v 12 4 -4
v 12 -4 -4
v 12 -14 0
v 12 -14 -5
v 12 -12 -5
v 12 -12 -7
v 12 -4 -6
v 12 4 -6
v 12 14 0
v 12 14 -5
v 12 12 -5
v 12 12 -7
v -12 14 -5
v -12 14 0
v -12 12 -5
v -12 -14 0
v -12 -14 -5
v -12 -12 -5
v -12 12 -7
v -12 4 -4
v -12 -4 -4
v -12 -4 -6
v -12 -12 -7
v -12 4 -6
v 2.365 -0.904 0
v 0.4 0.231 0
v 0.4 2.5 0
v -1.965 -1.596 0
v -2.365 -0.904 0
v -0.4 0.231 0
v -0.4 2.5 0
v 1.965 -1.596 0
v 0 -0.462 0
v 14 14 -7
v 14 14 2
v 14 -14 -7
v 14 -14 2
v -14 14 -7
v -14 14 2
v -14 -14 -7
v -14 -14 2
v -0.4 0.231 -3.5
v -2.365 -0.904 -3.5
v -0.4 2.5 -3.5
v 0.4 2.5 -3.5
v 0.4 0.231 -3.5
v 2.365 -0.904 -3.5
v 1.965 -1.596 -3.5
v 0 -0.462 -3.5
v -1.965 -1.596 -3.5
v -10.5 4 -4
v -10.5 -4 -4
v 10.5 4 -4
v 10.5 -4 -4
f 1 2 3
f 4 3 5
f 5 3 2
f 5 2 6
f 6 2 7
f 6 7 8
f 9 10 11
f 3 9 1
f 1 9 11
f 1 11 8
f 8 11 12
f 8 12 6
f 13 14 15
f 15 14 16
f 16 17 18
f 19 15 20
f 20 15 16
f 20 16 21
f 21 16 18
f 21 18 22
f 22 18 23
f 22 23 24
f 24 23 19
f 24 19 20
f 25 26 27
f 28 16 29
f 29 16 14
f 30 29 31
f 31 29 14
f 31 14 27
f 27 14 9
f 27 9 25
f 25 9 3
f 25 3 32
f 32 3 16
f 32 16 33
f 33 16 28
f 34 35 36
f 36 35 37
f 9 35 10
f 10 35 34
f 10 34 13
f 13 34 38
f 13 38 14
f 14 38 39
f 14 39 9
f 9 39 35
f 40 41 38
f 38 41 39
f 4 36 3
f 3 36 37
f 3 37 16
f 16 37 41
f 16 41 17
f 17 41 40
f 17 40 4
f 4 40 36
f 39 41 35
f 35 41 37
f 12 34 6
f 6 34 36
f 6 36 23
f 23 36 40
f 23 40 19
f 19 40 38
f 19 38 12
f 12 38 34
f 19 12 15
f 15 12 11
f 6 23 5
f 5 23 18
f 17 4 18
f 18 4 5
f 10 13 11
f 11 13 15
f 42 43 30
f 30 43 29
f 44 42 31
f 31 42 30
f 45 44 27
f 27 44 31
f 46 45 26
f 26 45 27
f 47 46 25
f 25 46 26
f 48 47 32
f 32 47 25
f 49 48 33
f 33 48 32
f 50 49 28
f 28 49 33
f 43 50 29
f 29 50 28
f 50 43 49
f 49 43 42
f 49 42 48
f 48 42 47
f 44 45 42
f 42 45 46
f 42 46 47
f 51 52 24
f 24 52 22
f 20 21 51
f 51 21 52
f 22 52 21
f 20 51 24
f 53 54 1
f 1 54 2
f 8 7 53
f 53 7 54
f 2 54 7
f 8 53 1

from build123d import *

# Parameters (mm, degrees)
SKETCH_1_W          = 28
SKETCH_1_H          = 28
EXTRUDE_1_DEPTH     = 2
SKETCH_2_W          = 28
SKETCH_2_H          = 28
SKETCH_2_W_2        = 24
SKETCH_2_H_2        = 24
EXTRUDE_2_DEPTH     = 7
SKETCH_3_W          = 24
SKETCH_3_H          = 5
CUT_EXTRUDE_1_DEPTH = 33.078029865
EXTRUDE_3_DEPTH     = 3.5
EXTRUDE_4_DEPTH     = 4


with BuildPart() as part:
    # Эскиз1 → Бобышка-Вытянуть1 (new body)
    with BuildSketch(Plane.XY):
        Rectangle(SKETCH_1_W, SKETCH_1_H)
    extrude(amount=EXTRUDE_1_DEPTH)

    # Эскиз2 → Бобышка-Вытянуть2 (add)
    with BuildSketch(Plane(origin=(0, 0, 0), x_dir=(-1, 0, 0), z_dir=(0, 0, -1))):
        Rectangle(SKETCH_2_W, SKETCH_2_H)
        Rectangle(SKETCH_2_W_2, SKETCH_2_H_2, mode=Mode.SUBTRACT)
    extrude(amount=EXTRUDE_2_DEPTH)

    # Эскиз3 → Вырез-Вытянуть1 (cut, through all)
    with BuildSketch(Plane(origin=(0, 14, 0), x_dir=(1, 0, 0), z_dir=(0, 1, 0))):
        with Locations((0, 2.5)):
            Rectangle(SKETCH_3_W, SKETCH_3_H)
    extrude(amount=-CUT_EXTRUDE_1_DEPTH, mode=Mode.SUBTRACT)

    # Эскиз4 → Бобышка-Вытянуть3 (add)
    with BuildSketch(Plane(origin=(0, 0, 0), x_dir=(-1, 0, 0), z_dir=(0, 0, -1))):
        with BuildLine():
            Line((-1.965063509, -1.596410162), (0, -0.461880215))
            Line((0, -0.461880215), (-0.2, -0.346410162))
            ThreePointArc((-0.2, -0.346410162), (-0.346410162, -0.2), (-0.4, 0))
            Line((-0.4, 0), (-0.4, 0.230940108))
            Line((-0.4, 0.230940108), (-2.365063509, -0.903589838))
            Line((-2.365063509, -0.903589838), (-1.965063509, -1.596410162))
        make_face()
        with BuildLine():
            Line((0, -0.461880215), (1.965063509, -1.596410162))
            Line((1.965063509, -1.596410162), (2.365063509, -0.903589838))
            Line((2.365063509, -0.903589838), (0.4, 0.230940108))
            Line((0.4, 0.230940108), (0.4, 0))
            ThreePointArc((0.4, 0), (0.346410162, -0.2), (0.2, -0.346410162))
            Line((0.2, -0.346410162), (0, -0.461880215))
        make_face()
        with BuildLine():
            Line((0.2, 0.346410162), (0.4, 0.230940108))
            Line((0.4, 0.230940108), (0.4, 2.5))
            Line((0.4, 2.5), (-0.4, 2.5))
            Line((-0.4, 2.5), (-0.4, 0.230940108))
            Line((-0.4, 0.230940108), (-0.2, 0.346410162))
            ThreePointArc((-0.2, 0.346410162), (0, 0.4), (0.2, 0.346410162))
        make_face()
        with BuildLine():
            Line((0, 0), (-0.2, -0.346410162))
            ThreePointArc((-0.2, -0.346410162), (0, -0.4), (0.2, -0.346410162))
            Line((0.2, -0.346410162), (0, 0))
        make_face()
        with BuildLine():
            Line((-0.2, 0.346410162), (0, 0))
            Line((0, 0), (0.2, 0.346410162))
            ThreePointArc((0.2, 0.346410162), (0, 0.4), (-0.2, 0.346410162))
        make_face()
        with BuildLine():
            Line((0, 0), (0.2, -0.346410162))
            ThreePointArc((0.2, -0.346410162), (0.346410162, -0.2), (0.4, 0))
            Line((0.4, 0), (0, 0))
        make_face()
        with BuildLine():
            Line((-0.4, 0), (0, 0))
            Line((0, 0), (-0.2, 0.346410162))
            ThreePointArc((-0.2, 0.346410162), (-0.346410162, 0.2), (-0.4, 0))
        make_face()
        with BuildLine():
            ThreePointArc((-0.4, 0), (-0.346410162, -0.2), (-0.2, -0.346410162))
            Line((-0.2, -0.346410162), (0, 0))
            Line((0, 0), (-0.4, 0))
        make_face()
        with BuildLine():
            Line((0.2, 0.346410162), (0, 0))
            Line((0, 0), (0.4, 0))
            ThreePointArc((0.4, 0), (0.346410162, 0.2), (0.2, 0.346410162))
        make_face()
        with BuildLine():
            Line((-0.2, -0.346410162), (0, -0.461880215))
            Line((0, -0.461880215), (0.2, -0.346410162))
            ThreePointArc((0.2, -0.346410162), (0, -0.4), (-0.2, -0.346410162))
        make_face()
        with BuildLine():
            Line((0.4, 0), (0.4, 0.230940108))
            Line((0.4, 0.230940108), (0.2, 0.346410162))
            ThreePointArc((0.2, 0.346410162), (0.346410162, 0.2), (0.4, 0))
        make_face()
        with BuildLine():
            Line((-0.4, 0.230940108), (-0.4, 0))
            ThreePointArc((-0.4, 0), (-0.346410162, 0.2), (-0.2, 0.346410162))
            Line((-0.2, 0.346410162), (-0.4, 0.230940108))
        make_face()
    extrude(amount=EXTRUDE_3_DEPTH)

    # Эскиз6 → Бобышка-Вытянуть4 (add, symmetric)
    with BuildSketch(Plane(origin=(0, 0, 0), x_dir=(1, 0, 0), z_dir=(0, 1, 0))):
        Polygon((-12, 6), (-10.5, 4), (-12, 4), align=None)
    extrude_4 = extrude(amount=EXTRUDE_4_DEPTH, both=True)

    # Зеркальное отражение1: Бобышка-Вытянуть4 across plane
    add(extrude_4.mirror(Plane(origin=(0, 0, 0), x_dir=(0, 0, 1), z_dir=(1, 0, 0))))


solid = part.part
